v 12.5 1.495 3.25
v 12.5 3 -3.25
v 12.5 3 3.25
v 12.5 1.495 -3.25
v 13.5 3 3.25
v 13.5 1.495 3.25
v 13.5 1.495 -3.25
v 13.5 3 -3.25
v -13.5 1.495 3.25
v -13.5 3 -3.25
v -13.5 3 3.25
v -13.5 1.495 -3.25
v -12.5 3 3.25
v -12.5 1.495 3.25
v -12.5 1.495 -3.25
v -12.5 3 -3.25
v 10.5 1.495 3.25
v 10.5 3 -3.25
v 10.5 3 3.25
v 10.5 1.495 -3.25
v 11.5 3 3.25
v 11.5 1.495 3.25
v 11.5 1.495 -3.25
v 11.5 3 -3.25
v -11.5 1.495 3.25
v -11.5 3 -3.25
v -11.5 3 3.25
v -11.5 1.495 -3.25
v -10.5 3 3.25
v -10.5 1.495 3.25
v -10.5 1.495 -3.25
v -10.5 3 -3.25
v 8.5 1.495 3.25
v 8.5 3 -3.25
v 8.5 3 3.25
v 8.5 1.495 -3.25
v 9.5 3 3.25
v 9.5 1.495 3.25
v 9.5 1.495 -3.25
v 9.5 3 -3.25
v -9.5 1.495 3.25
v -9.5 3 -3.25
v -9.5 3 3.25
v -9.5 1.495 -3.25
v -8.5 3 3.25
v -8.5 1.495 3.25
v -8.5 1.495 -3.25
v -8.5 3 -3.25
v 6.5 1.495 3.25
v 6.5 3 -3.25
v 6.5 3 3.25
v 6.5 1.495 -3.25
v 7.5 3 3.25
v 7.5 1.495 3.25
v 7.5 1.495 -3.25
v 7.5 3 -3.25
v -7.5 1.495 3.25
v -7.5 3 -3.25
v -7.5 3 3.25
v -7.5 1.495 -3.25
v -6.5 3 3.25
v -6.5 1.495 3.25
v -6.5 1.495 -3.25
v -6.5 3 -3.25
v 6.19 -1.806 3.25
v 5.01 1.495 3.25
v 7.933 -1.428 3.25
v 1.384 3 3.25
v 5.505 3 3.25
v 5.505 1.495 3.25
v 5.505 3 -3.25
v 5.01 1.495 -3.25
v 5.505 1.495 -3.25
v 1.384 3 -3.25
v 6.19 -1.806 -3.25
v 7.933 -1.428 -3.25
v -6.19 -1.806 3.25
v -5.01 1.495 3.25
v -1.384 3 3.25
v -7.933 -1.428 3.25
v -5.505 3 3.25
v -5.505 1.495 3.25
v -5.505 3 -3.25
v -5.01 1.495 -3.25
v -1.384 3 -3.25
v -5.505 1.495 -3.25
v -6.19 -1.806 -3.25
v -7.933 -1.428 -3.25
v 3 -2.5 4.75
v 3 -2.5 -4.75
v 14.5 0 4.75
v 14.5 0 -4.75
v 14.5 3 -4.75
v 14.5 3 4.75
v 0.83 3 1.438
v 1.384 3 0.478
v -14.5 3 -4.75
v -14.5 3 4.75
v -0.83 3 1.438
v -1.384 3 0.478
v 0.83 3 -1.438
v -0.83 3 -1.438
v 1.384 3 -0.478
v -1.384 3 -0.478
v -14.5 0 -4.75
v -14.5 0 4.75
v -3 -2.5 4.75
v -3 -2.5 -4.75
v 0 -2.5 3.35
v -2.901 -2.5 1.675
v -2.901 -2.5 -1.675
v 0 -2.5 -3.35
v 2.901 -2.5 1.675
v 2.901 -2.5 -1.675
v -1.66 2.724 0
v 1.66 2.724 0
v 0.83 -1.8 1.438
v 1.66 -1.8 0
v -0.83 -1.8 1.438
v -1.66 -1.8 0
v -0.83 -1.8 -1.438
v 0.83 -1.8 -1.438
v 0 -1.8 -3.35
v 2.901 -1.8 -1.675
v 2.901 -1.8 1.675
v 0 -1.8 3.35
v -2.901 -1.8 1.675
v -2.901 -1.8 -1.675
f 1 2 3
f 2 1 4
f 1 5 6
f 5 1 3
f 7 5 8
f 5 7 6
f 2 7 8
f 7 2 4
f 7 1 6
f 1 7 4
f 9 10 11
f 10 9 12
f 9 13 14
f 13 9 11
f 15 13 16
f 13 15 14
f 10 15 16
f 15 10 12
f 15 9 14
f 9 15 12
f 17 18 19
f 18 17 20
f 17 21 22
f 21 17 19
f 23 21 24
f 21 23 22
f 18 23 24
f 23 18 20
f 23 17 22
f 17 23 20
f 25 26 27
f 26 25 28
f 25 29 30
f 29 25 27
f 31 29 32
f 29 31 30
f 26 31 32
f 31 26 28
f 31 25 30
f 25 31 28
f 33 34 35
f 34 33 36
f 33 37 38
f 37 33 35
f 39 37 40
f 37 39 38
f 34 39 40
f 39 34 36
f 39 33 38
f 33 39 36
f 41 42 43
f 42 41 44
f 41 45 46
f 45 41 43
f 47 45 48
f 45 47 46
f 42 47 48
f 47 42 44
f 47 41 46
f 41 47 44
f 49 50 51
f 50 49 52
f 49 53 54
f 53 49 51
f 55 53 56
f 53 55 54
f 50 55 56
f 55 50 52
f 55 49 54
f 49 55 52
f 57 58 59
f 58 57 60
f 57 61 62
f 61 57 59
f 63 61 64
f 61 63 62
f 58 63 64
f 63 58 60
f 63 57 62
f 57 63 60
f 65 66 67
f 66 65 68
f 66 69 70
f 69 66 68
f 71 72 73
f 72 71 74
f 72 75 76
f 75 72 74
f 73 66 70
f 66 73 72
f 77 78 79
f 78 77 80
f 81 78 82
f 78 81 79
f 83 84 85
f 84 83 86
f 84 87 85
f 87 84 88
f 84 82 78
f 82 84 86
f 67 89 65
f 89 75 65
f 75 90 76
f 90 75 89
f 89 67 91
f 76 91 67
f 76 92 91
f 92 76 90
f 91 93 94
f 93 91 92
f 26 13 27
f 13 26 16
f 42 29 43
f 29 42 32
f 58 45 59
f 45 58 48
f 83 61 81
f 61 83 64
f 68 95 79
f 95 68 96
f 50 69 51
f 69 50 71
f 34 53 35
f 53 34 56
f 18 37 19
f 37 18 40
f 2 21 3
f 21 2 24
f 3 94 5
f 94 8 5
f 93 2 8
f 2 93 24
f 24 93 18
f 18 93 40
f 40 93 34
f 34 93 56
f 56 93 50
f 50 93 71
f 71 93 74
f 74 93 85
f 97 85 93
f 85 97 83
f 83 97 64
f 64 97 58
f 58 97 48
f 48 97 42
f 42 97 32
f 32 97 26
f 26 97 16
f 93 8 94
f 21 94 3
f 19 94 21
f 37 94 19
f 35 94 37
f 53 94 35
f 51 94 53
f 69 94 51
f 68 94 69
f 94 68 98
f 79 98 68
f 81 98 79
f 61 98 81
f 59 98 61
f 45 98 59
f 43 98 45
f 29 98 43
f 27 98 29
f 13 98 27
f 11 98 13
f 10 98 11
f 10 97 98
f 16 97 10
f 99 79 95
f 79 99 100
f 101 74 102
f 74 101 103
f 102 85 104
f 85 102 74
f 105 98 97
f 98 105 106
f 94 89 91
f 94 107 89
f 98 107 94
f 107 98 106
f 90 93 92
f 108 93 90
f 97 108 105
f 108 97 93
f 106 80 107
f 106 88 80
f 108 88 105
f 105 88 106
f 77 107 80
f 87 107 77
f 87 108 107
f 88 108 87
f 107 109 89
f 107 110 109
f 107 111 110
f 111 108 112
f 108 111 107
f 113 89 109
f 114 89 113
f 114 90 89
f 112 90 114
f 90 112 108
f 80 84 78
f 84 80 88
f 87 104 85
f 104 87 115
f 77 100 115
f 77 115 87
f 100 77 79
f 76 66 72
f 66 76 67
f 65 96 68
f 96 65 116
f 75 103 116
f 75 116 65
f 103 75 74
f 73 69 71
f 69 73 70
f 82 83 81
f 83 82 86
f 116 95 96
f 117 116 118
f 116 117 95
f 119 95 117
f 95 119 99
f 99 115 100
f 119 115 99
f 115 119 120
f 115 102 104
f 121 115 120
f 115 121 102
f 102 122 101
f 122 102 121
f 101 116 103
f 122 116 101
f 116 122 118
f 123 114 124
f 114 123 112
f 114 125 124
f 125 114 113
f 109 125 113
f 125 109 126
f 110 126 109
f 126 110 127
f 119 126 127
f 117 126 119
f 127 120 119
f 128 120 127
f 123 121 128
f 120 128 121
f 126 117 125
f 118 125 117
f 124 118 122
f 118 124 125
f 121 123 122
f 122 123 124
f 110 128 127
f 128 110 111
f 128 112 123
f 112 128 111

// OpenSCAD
/**
 * Tough Belt Clip
 * Design by Marius Gheorghescu, December 2013
 * @author Marius Gheorghescu
 * @license CC BY-SA 3.0 (Creative Commons Attribute-ShareAlike 3.0 Unported)
 */

// how many teeth on each side
teeth = 5;

// width of the belt in mm incl clearance (use 6.25 for typical GT2 belt)
belt_width = 6.5;

// thickness of the belt in mm (use 1.5 for GT2 belt)
belt_thickness = 1.5;

// belt pitch in mm (use 2.0 for GT2 belt)
pitch = 2.0;

// this controls the strength of the bracket 
shell = 1.5;

/* [Hidden] */
cutout_width = 6 + belt_thickness + shell;
len = 2*teeth*pitch + cutout_width;
round_corner_epsilon = 1;
epsilon = 0.01;


module belt()
{
	// reinforcement
	//cube([len, 2, h], center=true);

	for(i=[pitch/4:pitch:len]) {
		translate([i-len/2, 1.25, 0])
			cube([pitch - round_corner_epsilon, belt_thickness + round_corner_epsilon, belt_width], center=true);

	}

}



module clip() {
difference()  {

	union() {
		// general shape of the clip
		linear_extrude(belt_width + 2*shell, center=true) {
			polygon(points=[
				[len/2,0],
				[3,-2.5], 
				[-3,-2.5], 
				[-len/2,0], 
				[-len/2, shell + belt_thickness], 
				[len/2, shell + belt_thickness]
			]);
		}


		
	}

	// left belt turn
	rotate([0,0,-45])
	translate([-3.2/2 - shell - belt_thickness/2,0,0])
		cube([belt_thickness, 20 + 2*shell, belt_width], center=true);

	// right belt turn
	rotate([0,0,45])
//+ belt_thicknes/2 + shell
	translate([3.2/2 + shell + belt_thickness/2,0,0])
		cube([belt_thickness, 20 + 2*shell, belt_width], center=true);

	// cutouts
	translate([len/2 - teeth*pitch, shell + belt_thickness/2, 0])
		cube([pitch + epsilon, belt_thickness + epsilon, belt_width], center=true);

	translate([-len/2 + teeth*pitch, shell + belt_thickness/2, 0])
		cube([pitch + epsilon, belt_thickness + epsilon, belt_width], center=true);


	// m3 hole
	rotate([90,0,0])
		cylinder(r=1.66, h=10 + 2*shell, center=true);

	// hex nut
	translate([0, -3.8, 0])
	rotate([90,90,0])
		cylinder(r=3.35, h=4, center=true, $fn=6);

	// belt teeth
	for(i=[1:1:teeth]) {

		// left side
		color([1,0, 0])
		translate([len/2 + pitch/4 - i*pitch, shell + belt_thickness/2, 0])
			cube([pitch/2, belt_thickness + epsilon, belt_width], center=true);

		// right side 
		color([1,0, 0])
		translate([-len/2 - pitch/4 + i*pitch, shell + belt_thickness/2, 0])
			cube([pitch/2, belt_thickness + epsilon, belt_width], center=true);
	}

}


}


module clip_set()
{
	for(i=[0:10:50]) {
		translate([0,i,0])
			clip();
	}
}

//clip_set();
clip();
